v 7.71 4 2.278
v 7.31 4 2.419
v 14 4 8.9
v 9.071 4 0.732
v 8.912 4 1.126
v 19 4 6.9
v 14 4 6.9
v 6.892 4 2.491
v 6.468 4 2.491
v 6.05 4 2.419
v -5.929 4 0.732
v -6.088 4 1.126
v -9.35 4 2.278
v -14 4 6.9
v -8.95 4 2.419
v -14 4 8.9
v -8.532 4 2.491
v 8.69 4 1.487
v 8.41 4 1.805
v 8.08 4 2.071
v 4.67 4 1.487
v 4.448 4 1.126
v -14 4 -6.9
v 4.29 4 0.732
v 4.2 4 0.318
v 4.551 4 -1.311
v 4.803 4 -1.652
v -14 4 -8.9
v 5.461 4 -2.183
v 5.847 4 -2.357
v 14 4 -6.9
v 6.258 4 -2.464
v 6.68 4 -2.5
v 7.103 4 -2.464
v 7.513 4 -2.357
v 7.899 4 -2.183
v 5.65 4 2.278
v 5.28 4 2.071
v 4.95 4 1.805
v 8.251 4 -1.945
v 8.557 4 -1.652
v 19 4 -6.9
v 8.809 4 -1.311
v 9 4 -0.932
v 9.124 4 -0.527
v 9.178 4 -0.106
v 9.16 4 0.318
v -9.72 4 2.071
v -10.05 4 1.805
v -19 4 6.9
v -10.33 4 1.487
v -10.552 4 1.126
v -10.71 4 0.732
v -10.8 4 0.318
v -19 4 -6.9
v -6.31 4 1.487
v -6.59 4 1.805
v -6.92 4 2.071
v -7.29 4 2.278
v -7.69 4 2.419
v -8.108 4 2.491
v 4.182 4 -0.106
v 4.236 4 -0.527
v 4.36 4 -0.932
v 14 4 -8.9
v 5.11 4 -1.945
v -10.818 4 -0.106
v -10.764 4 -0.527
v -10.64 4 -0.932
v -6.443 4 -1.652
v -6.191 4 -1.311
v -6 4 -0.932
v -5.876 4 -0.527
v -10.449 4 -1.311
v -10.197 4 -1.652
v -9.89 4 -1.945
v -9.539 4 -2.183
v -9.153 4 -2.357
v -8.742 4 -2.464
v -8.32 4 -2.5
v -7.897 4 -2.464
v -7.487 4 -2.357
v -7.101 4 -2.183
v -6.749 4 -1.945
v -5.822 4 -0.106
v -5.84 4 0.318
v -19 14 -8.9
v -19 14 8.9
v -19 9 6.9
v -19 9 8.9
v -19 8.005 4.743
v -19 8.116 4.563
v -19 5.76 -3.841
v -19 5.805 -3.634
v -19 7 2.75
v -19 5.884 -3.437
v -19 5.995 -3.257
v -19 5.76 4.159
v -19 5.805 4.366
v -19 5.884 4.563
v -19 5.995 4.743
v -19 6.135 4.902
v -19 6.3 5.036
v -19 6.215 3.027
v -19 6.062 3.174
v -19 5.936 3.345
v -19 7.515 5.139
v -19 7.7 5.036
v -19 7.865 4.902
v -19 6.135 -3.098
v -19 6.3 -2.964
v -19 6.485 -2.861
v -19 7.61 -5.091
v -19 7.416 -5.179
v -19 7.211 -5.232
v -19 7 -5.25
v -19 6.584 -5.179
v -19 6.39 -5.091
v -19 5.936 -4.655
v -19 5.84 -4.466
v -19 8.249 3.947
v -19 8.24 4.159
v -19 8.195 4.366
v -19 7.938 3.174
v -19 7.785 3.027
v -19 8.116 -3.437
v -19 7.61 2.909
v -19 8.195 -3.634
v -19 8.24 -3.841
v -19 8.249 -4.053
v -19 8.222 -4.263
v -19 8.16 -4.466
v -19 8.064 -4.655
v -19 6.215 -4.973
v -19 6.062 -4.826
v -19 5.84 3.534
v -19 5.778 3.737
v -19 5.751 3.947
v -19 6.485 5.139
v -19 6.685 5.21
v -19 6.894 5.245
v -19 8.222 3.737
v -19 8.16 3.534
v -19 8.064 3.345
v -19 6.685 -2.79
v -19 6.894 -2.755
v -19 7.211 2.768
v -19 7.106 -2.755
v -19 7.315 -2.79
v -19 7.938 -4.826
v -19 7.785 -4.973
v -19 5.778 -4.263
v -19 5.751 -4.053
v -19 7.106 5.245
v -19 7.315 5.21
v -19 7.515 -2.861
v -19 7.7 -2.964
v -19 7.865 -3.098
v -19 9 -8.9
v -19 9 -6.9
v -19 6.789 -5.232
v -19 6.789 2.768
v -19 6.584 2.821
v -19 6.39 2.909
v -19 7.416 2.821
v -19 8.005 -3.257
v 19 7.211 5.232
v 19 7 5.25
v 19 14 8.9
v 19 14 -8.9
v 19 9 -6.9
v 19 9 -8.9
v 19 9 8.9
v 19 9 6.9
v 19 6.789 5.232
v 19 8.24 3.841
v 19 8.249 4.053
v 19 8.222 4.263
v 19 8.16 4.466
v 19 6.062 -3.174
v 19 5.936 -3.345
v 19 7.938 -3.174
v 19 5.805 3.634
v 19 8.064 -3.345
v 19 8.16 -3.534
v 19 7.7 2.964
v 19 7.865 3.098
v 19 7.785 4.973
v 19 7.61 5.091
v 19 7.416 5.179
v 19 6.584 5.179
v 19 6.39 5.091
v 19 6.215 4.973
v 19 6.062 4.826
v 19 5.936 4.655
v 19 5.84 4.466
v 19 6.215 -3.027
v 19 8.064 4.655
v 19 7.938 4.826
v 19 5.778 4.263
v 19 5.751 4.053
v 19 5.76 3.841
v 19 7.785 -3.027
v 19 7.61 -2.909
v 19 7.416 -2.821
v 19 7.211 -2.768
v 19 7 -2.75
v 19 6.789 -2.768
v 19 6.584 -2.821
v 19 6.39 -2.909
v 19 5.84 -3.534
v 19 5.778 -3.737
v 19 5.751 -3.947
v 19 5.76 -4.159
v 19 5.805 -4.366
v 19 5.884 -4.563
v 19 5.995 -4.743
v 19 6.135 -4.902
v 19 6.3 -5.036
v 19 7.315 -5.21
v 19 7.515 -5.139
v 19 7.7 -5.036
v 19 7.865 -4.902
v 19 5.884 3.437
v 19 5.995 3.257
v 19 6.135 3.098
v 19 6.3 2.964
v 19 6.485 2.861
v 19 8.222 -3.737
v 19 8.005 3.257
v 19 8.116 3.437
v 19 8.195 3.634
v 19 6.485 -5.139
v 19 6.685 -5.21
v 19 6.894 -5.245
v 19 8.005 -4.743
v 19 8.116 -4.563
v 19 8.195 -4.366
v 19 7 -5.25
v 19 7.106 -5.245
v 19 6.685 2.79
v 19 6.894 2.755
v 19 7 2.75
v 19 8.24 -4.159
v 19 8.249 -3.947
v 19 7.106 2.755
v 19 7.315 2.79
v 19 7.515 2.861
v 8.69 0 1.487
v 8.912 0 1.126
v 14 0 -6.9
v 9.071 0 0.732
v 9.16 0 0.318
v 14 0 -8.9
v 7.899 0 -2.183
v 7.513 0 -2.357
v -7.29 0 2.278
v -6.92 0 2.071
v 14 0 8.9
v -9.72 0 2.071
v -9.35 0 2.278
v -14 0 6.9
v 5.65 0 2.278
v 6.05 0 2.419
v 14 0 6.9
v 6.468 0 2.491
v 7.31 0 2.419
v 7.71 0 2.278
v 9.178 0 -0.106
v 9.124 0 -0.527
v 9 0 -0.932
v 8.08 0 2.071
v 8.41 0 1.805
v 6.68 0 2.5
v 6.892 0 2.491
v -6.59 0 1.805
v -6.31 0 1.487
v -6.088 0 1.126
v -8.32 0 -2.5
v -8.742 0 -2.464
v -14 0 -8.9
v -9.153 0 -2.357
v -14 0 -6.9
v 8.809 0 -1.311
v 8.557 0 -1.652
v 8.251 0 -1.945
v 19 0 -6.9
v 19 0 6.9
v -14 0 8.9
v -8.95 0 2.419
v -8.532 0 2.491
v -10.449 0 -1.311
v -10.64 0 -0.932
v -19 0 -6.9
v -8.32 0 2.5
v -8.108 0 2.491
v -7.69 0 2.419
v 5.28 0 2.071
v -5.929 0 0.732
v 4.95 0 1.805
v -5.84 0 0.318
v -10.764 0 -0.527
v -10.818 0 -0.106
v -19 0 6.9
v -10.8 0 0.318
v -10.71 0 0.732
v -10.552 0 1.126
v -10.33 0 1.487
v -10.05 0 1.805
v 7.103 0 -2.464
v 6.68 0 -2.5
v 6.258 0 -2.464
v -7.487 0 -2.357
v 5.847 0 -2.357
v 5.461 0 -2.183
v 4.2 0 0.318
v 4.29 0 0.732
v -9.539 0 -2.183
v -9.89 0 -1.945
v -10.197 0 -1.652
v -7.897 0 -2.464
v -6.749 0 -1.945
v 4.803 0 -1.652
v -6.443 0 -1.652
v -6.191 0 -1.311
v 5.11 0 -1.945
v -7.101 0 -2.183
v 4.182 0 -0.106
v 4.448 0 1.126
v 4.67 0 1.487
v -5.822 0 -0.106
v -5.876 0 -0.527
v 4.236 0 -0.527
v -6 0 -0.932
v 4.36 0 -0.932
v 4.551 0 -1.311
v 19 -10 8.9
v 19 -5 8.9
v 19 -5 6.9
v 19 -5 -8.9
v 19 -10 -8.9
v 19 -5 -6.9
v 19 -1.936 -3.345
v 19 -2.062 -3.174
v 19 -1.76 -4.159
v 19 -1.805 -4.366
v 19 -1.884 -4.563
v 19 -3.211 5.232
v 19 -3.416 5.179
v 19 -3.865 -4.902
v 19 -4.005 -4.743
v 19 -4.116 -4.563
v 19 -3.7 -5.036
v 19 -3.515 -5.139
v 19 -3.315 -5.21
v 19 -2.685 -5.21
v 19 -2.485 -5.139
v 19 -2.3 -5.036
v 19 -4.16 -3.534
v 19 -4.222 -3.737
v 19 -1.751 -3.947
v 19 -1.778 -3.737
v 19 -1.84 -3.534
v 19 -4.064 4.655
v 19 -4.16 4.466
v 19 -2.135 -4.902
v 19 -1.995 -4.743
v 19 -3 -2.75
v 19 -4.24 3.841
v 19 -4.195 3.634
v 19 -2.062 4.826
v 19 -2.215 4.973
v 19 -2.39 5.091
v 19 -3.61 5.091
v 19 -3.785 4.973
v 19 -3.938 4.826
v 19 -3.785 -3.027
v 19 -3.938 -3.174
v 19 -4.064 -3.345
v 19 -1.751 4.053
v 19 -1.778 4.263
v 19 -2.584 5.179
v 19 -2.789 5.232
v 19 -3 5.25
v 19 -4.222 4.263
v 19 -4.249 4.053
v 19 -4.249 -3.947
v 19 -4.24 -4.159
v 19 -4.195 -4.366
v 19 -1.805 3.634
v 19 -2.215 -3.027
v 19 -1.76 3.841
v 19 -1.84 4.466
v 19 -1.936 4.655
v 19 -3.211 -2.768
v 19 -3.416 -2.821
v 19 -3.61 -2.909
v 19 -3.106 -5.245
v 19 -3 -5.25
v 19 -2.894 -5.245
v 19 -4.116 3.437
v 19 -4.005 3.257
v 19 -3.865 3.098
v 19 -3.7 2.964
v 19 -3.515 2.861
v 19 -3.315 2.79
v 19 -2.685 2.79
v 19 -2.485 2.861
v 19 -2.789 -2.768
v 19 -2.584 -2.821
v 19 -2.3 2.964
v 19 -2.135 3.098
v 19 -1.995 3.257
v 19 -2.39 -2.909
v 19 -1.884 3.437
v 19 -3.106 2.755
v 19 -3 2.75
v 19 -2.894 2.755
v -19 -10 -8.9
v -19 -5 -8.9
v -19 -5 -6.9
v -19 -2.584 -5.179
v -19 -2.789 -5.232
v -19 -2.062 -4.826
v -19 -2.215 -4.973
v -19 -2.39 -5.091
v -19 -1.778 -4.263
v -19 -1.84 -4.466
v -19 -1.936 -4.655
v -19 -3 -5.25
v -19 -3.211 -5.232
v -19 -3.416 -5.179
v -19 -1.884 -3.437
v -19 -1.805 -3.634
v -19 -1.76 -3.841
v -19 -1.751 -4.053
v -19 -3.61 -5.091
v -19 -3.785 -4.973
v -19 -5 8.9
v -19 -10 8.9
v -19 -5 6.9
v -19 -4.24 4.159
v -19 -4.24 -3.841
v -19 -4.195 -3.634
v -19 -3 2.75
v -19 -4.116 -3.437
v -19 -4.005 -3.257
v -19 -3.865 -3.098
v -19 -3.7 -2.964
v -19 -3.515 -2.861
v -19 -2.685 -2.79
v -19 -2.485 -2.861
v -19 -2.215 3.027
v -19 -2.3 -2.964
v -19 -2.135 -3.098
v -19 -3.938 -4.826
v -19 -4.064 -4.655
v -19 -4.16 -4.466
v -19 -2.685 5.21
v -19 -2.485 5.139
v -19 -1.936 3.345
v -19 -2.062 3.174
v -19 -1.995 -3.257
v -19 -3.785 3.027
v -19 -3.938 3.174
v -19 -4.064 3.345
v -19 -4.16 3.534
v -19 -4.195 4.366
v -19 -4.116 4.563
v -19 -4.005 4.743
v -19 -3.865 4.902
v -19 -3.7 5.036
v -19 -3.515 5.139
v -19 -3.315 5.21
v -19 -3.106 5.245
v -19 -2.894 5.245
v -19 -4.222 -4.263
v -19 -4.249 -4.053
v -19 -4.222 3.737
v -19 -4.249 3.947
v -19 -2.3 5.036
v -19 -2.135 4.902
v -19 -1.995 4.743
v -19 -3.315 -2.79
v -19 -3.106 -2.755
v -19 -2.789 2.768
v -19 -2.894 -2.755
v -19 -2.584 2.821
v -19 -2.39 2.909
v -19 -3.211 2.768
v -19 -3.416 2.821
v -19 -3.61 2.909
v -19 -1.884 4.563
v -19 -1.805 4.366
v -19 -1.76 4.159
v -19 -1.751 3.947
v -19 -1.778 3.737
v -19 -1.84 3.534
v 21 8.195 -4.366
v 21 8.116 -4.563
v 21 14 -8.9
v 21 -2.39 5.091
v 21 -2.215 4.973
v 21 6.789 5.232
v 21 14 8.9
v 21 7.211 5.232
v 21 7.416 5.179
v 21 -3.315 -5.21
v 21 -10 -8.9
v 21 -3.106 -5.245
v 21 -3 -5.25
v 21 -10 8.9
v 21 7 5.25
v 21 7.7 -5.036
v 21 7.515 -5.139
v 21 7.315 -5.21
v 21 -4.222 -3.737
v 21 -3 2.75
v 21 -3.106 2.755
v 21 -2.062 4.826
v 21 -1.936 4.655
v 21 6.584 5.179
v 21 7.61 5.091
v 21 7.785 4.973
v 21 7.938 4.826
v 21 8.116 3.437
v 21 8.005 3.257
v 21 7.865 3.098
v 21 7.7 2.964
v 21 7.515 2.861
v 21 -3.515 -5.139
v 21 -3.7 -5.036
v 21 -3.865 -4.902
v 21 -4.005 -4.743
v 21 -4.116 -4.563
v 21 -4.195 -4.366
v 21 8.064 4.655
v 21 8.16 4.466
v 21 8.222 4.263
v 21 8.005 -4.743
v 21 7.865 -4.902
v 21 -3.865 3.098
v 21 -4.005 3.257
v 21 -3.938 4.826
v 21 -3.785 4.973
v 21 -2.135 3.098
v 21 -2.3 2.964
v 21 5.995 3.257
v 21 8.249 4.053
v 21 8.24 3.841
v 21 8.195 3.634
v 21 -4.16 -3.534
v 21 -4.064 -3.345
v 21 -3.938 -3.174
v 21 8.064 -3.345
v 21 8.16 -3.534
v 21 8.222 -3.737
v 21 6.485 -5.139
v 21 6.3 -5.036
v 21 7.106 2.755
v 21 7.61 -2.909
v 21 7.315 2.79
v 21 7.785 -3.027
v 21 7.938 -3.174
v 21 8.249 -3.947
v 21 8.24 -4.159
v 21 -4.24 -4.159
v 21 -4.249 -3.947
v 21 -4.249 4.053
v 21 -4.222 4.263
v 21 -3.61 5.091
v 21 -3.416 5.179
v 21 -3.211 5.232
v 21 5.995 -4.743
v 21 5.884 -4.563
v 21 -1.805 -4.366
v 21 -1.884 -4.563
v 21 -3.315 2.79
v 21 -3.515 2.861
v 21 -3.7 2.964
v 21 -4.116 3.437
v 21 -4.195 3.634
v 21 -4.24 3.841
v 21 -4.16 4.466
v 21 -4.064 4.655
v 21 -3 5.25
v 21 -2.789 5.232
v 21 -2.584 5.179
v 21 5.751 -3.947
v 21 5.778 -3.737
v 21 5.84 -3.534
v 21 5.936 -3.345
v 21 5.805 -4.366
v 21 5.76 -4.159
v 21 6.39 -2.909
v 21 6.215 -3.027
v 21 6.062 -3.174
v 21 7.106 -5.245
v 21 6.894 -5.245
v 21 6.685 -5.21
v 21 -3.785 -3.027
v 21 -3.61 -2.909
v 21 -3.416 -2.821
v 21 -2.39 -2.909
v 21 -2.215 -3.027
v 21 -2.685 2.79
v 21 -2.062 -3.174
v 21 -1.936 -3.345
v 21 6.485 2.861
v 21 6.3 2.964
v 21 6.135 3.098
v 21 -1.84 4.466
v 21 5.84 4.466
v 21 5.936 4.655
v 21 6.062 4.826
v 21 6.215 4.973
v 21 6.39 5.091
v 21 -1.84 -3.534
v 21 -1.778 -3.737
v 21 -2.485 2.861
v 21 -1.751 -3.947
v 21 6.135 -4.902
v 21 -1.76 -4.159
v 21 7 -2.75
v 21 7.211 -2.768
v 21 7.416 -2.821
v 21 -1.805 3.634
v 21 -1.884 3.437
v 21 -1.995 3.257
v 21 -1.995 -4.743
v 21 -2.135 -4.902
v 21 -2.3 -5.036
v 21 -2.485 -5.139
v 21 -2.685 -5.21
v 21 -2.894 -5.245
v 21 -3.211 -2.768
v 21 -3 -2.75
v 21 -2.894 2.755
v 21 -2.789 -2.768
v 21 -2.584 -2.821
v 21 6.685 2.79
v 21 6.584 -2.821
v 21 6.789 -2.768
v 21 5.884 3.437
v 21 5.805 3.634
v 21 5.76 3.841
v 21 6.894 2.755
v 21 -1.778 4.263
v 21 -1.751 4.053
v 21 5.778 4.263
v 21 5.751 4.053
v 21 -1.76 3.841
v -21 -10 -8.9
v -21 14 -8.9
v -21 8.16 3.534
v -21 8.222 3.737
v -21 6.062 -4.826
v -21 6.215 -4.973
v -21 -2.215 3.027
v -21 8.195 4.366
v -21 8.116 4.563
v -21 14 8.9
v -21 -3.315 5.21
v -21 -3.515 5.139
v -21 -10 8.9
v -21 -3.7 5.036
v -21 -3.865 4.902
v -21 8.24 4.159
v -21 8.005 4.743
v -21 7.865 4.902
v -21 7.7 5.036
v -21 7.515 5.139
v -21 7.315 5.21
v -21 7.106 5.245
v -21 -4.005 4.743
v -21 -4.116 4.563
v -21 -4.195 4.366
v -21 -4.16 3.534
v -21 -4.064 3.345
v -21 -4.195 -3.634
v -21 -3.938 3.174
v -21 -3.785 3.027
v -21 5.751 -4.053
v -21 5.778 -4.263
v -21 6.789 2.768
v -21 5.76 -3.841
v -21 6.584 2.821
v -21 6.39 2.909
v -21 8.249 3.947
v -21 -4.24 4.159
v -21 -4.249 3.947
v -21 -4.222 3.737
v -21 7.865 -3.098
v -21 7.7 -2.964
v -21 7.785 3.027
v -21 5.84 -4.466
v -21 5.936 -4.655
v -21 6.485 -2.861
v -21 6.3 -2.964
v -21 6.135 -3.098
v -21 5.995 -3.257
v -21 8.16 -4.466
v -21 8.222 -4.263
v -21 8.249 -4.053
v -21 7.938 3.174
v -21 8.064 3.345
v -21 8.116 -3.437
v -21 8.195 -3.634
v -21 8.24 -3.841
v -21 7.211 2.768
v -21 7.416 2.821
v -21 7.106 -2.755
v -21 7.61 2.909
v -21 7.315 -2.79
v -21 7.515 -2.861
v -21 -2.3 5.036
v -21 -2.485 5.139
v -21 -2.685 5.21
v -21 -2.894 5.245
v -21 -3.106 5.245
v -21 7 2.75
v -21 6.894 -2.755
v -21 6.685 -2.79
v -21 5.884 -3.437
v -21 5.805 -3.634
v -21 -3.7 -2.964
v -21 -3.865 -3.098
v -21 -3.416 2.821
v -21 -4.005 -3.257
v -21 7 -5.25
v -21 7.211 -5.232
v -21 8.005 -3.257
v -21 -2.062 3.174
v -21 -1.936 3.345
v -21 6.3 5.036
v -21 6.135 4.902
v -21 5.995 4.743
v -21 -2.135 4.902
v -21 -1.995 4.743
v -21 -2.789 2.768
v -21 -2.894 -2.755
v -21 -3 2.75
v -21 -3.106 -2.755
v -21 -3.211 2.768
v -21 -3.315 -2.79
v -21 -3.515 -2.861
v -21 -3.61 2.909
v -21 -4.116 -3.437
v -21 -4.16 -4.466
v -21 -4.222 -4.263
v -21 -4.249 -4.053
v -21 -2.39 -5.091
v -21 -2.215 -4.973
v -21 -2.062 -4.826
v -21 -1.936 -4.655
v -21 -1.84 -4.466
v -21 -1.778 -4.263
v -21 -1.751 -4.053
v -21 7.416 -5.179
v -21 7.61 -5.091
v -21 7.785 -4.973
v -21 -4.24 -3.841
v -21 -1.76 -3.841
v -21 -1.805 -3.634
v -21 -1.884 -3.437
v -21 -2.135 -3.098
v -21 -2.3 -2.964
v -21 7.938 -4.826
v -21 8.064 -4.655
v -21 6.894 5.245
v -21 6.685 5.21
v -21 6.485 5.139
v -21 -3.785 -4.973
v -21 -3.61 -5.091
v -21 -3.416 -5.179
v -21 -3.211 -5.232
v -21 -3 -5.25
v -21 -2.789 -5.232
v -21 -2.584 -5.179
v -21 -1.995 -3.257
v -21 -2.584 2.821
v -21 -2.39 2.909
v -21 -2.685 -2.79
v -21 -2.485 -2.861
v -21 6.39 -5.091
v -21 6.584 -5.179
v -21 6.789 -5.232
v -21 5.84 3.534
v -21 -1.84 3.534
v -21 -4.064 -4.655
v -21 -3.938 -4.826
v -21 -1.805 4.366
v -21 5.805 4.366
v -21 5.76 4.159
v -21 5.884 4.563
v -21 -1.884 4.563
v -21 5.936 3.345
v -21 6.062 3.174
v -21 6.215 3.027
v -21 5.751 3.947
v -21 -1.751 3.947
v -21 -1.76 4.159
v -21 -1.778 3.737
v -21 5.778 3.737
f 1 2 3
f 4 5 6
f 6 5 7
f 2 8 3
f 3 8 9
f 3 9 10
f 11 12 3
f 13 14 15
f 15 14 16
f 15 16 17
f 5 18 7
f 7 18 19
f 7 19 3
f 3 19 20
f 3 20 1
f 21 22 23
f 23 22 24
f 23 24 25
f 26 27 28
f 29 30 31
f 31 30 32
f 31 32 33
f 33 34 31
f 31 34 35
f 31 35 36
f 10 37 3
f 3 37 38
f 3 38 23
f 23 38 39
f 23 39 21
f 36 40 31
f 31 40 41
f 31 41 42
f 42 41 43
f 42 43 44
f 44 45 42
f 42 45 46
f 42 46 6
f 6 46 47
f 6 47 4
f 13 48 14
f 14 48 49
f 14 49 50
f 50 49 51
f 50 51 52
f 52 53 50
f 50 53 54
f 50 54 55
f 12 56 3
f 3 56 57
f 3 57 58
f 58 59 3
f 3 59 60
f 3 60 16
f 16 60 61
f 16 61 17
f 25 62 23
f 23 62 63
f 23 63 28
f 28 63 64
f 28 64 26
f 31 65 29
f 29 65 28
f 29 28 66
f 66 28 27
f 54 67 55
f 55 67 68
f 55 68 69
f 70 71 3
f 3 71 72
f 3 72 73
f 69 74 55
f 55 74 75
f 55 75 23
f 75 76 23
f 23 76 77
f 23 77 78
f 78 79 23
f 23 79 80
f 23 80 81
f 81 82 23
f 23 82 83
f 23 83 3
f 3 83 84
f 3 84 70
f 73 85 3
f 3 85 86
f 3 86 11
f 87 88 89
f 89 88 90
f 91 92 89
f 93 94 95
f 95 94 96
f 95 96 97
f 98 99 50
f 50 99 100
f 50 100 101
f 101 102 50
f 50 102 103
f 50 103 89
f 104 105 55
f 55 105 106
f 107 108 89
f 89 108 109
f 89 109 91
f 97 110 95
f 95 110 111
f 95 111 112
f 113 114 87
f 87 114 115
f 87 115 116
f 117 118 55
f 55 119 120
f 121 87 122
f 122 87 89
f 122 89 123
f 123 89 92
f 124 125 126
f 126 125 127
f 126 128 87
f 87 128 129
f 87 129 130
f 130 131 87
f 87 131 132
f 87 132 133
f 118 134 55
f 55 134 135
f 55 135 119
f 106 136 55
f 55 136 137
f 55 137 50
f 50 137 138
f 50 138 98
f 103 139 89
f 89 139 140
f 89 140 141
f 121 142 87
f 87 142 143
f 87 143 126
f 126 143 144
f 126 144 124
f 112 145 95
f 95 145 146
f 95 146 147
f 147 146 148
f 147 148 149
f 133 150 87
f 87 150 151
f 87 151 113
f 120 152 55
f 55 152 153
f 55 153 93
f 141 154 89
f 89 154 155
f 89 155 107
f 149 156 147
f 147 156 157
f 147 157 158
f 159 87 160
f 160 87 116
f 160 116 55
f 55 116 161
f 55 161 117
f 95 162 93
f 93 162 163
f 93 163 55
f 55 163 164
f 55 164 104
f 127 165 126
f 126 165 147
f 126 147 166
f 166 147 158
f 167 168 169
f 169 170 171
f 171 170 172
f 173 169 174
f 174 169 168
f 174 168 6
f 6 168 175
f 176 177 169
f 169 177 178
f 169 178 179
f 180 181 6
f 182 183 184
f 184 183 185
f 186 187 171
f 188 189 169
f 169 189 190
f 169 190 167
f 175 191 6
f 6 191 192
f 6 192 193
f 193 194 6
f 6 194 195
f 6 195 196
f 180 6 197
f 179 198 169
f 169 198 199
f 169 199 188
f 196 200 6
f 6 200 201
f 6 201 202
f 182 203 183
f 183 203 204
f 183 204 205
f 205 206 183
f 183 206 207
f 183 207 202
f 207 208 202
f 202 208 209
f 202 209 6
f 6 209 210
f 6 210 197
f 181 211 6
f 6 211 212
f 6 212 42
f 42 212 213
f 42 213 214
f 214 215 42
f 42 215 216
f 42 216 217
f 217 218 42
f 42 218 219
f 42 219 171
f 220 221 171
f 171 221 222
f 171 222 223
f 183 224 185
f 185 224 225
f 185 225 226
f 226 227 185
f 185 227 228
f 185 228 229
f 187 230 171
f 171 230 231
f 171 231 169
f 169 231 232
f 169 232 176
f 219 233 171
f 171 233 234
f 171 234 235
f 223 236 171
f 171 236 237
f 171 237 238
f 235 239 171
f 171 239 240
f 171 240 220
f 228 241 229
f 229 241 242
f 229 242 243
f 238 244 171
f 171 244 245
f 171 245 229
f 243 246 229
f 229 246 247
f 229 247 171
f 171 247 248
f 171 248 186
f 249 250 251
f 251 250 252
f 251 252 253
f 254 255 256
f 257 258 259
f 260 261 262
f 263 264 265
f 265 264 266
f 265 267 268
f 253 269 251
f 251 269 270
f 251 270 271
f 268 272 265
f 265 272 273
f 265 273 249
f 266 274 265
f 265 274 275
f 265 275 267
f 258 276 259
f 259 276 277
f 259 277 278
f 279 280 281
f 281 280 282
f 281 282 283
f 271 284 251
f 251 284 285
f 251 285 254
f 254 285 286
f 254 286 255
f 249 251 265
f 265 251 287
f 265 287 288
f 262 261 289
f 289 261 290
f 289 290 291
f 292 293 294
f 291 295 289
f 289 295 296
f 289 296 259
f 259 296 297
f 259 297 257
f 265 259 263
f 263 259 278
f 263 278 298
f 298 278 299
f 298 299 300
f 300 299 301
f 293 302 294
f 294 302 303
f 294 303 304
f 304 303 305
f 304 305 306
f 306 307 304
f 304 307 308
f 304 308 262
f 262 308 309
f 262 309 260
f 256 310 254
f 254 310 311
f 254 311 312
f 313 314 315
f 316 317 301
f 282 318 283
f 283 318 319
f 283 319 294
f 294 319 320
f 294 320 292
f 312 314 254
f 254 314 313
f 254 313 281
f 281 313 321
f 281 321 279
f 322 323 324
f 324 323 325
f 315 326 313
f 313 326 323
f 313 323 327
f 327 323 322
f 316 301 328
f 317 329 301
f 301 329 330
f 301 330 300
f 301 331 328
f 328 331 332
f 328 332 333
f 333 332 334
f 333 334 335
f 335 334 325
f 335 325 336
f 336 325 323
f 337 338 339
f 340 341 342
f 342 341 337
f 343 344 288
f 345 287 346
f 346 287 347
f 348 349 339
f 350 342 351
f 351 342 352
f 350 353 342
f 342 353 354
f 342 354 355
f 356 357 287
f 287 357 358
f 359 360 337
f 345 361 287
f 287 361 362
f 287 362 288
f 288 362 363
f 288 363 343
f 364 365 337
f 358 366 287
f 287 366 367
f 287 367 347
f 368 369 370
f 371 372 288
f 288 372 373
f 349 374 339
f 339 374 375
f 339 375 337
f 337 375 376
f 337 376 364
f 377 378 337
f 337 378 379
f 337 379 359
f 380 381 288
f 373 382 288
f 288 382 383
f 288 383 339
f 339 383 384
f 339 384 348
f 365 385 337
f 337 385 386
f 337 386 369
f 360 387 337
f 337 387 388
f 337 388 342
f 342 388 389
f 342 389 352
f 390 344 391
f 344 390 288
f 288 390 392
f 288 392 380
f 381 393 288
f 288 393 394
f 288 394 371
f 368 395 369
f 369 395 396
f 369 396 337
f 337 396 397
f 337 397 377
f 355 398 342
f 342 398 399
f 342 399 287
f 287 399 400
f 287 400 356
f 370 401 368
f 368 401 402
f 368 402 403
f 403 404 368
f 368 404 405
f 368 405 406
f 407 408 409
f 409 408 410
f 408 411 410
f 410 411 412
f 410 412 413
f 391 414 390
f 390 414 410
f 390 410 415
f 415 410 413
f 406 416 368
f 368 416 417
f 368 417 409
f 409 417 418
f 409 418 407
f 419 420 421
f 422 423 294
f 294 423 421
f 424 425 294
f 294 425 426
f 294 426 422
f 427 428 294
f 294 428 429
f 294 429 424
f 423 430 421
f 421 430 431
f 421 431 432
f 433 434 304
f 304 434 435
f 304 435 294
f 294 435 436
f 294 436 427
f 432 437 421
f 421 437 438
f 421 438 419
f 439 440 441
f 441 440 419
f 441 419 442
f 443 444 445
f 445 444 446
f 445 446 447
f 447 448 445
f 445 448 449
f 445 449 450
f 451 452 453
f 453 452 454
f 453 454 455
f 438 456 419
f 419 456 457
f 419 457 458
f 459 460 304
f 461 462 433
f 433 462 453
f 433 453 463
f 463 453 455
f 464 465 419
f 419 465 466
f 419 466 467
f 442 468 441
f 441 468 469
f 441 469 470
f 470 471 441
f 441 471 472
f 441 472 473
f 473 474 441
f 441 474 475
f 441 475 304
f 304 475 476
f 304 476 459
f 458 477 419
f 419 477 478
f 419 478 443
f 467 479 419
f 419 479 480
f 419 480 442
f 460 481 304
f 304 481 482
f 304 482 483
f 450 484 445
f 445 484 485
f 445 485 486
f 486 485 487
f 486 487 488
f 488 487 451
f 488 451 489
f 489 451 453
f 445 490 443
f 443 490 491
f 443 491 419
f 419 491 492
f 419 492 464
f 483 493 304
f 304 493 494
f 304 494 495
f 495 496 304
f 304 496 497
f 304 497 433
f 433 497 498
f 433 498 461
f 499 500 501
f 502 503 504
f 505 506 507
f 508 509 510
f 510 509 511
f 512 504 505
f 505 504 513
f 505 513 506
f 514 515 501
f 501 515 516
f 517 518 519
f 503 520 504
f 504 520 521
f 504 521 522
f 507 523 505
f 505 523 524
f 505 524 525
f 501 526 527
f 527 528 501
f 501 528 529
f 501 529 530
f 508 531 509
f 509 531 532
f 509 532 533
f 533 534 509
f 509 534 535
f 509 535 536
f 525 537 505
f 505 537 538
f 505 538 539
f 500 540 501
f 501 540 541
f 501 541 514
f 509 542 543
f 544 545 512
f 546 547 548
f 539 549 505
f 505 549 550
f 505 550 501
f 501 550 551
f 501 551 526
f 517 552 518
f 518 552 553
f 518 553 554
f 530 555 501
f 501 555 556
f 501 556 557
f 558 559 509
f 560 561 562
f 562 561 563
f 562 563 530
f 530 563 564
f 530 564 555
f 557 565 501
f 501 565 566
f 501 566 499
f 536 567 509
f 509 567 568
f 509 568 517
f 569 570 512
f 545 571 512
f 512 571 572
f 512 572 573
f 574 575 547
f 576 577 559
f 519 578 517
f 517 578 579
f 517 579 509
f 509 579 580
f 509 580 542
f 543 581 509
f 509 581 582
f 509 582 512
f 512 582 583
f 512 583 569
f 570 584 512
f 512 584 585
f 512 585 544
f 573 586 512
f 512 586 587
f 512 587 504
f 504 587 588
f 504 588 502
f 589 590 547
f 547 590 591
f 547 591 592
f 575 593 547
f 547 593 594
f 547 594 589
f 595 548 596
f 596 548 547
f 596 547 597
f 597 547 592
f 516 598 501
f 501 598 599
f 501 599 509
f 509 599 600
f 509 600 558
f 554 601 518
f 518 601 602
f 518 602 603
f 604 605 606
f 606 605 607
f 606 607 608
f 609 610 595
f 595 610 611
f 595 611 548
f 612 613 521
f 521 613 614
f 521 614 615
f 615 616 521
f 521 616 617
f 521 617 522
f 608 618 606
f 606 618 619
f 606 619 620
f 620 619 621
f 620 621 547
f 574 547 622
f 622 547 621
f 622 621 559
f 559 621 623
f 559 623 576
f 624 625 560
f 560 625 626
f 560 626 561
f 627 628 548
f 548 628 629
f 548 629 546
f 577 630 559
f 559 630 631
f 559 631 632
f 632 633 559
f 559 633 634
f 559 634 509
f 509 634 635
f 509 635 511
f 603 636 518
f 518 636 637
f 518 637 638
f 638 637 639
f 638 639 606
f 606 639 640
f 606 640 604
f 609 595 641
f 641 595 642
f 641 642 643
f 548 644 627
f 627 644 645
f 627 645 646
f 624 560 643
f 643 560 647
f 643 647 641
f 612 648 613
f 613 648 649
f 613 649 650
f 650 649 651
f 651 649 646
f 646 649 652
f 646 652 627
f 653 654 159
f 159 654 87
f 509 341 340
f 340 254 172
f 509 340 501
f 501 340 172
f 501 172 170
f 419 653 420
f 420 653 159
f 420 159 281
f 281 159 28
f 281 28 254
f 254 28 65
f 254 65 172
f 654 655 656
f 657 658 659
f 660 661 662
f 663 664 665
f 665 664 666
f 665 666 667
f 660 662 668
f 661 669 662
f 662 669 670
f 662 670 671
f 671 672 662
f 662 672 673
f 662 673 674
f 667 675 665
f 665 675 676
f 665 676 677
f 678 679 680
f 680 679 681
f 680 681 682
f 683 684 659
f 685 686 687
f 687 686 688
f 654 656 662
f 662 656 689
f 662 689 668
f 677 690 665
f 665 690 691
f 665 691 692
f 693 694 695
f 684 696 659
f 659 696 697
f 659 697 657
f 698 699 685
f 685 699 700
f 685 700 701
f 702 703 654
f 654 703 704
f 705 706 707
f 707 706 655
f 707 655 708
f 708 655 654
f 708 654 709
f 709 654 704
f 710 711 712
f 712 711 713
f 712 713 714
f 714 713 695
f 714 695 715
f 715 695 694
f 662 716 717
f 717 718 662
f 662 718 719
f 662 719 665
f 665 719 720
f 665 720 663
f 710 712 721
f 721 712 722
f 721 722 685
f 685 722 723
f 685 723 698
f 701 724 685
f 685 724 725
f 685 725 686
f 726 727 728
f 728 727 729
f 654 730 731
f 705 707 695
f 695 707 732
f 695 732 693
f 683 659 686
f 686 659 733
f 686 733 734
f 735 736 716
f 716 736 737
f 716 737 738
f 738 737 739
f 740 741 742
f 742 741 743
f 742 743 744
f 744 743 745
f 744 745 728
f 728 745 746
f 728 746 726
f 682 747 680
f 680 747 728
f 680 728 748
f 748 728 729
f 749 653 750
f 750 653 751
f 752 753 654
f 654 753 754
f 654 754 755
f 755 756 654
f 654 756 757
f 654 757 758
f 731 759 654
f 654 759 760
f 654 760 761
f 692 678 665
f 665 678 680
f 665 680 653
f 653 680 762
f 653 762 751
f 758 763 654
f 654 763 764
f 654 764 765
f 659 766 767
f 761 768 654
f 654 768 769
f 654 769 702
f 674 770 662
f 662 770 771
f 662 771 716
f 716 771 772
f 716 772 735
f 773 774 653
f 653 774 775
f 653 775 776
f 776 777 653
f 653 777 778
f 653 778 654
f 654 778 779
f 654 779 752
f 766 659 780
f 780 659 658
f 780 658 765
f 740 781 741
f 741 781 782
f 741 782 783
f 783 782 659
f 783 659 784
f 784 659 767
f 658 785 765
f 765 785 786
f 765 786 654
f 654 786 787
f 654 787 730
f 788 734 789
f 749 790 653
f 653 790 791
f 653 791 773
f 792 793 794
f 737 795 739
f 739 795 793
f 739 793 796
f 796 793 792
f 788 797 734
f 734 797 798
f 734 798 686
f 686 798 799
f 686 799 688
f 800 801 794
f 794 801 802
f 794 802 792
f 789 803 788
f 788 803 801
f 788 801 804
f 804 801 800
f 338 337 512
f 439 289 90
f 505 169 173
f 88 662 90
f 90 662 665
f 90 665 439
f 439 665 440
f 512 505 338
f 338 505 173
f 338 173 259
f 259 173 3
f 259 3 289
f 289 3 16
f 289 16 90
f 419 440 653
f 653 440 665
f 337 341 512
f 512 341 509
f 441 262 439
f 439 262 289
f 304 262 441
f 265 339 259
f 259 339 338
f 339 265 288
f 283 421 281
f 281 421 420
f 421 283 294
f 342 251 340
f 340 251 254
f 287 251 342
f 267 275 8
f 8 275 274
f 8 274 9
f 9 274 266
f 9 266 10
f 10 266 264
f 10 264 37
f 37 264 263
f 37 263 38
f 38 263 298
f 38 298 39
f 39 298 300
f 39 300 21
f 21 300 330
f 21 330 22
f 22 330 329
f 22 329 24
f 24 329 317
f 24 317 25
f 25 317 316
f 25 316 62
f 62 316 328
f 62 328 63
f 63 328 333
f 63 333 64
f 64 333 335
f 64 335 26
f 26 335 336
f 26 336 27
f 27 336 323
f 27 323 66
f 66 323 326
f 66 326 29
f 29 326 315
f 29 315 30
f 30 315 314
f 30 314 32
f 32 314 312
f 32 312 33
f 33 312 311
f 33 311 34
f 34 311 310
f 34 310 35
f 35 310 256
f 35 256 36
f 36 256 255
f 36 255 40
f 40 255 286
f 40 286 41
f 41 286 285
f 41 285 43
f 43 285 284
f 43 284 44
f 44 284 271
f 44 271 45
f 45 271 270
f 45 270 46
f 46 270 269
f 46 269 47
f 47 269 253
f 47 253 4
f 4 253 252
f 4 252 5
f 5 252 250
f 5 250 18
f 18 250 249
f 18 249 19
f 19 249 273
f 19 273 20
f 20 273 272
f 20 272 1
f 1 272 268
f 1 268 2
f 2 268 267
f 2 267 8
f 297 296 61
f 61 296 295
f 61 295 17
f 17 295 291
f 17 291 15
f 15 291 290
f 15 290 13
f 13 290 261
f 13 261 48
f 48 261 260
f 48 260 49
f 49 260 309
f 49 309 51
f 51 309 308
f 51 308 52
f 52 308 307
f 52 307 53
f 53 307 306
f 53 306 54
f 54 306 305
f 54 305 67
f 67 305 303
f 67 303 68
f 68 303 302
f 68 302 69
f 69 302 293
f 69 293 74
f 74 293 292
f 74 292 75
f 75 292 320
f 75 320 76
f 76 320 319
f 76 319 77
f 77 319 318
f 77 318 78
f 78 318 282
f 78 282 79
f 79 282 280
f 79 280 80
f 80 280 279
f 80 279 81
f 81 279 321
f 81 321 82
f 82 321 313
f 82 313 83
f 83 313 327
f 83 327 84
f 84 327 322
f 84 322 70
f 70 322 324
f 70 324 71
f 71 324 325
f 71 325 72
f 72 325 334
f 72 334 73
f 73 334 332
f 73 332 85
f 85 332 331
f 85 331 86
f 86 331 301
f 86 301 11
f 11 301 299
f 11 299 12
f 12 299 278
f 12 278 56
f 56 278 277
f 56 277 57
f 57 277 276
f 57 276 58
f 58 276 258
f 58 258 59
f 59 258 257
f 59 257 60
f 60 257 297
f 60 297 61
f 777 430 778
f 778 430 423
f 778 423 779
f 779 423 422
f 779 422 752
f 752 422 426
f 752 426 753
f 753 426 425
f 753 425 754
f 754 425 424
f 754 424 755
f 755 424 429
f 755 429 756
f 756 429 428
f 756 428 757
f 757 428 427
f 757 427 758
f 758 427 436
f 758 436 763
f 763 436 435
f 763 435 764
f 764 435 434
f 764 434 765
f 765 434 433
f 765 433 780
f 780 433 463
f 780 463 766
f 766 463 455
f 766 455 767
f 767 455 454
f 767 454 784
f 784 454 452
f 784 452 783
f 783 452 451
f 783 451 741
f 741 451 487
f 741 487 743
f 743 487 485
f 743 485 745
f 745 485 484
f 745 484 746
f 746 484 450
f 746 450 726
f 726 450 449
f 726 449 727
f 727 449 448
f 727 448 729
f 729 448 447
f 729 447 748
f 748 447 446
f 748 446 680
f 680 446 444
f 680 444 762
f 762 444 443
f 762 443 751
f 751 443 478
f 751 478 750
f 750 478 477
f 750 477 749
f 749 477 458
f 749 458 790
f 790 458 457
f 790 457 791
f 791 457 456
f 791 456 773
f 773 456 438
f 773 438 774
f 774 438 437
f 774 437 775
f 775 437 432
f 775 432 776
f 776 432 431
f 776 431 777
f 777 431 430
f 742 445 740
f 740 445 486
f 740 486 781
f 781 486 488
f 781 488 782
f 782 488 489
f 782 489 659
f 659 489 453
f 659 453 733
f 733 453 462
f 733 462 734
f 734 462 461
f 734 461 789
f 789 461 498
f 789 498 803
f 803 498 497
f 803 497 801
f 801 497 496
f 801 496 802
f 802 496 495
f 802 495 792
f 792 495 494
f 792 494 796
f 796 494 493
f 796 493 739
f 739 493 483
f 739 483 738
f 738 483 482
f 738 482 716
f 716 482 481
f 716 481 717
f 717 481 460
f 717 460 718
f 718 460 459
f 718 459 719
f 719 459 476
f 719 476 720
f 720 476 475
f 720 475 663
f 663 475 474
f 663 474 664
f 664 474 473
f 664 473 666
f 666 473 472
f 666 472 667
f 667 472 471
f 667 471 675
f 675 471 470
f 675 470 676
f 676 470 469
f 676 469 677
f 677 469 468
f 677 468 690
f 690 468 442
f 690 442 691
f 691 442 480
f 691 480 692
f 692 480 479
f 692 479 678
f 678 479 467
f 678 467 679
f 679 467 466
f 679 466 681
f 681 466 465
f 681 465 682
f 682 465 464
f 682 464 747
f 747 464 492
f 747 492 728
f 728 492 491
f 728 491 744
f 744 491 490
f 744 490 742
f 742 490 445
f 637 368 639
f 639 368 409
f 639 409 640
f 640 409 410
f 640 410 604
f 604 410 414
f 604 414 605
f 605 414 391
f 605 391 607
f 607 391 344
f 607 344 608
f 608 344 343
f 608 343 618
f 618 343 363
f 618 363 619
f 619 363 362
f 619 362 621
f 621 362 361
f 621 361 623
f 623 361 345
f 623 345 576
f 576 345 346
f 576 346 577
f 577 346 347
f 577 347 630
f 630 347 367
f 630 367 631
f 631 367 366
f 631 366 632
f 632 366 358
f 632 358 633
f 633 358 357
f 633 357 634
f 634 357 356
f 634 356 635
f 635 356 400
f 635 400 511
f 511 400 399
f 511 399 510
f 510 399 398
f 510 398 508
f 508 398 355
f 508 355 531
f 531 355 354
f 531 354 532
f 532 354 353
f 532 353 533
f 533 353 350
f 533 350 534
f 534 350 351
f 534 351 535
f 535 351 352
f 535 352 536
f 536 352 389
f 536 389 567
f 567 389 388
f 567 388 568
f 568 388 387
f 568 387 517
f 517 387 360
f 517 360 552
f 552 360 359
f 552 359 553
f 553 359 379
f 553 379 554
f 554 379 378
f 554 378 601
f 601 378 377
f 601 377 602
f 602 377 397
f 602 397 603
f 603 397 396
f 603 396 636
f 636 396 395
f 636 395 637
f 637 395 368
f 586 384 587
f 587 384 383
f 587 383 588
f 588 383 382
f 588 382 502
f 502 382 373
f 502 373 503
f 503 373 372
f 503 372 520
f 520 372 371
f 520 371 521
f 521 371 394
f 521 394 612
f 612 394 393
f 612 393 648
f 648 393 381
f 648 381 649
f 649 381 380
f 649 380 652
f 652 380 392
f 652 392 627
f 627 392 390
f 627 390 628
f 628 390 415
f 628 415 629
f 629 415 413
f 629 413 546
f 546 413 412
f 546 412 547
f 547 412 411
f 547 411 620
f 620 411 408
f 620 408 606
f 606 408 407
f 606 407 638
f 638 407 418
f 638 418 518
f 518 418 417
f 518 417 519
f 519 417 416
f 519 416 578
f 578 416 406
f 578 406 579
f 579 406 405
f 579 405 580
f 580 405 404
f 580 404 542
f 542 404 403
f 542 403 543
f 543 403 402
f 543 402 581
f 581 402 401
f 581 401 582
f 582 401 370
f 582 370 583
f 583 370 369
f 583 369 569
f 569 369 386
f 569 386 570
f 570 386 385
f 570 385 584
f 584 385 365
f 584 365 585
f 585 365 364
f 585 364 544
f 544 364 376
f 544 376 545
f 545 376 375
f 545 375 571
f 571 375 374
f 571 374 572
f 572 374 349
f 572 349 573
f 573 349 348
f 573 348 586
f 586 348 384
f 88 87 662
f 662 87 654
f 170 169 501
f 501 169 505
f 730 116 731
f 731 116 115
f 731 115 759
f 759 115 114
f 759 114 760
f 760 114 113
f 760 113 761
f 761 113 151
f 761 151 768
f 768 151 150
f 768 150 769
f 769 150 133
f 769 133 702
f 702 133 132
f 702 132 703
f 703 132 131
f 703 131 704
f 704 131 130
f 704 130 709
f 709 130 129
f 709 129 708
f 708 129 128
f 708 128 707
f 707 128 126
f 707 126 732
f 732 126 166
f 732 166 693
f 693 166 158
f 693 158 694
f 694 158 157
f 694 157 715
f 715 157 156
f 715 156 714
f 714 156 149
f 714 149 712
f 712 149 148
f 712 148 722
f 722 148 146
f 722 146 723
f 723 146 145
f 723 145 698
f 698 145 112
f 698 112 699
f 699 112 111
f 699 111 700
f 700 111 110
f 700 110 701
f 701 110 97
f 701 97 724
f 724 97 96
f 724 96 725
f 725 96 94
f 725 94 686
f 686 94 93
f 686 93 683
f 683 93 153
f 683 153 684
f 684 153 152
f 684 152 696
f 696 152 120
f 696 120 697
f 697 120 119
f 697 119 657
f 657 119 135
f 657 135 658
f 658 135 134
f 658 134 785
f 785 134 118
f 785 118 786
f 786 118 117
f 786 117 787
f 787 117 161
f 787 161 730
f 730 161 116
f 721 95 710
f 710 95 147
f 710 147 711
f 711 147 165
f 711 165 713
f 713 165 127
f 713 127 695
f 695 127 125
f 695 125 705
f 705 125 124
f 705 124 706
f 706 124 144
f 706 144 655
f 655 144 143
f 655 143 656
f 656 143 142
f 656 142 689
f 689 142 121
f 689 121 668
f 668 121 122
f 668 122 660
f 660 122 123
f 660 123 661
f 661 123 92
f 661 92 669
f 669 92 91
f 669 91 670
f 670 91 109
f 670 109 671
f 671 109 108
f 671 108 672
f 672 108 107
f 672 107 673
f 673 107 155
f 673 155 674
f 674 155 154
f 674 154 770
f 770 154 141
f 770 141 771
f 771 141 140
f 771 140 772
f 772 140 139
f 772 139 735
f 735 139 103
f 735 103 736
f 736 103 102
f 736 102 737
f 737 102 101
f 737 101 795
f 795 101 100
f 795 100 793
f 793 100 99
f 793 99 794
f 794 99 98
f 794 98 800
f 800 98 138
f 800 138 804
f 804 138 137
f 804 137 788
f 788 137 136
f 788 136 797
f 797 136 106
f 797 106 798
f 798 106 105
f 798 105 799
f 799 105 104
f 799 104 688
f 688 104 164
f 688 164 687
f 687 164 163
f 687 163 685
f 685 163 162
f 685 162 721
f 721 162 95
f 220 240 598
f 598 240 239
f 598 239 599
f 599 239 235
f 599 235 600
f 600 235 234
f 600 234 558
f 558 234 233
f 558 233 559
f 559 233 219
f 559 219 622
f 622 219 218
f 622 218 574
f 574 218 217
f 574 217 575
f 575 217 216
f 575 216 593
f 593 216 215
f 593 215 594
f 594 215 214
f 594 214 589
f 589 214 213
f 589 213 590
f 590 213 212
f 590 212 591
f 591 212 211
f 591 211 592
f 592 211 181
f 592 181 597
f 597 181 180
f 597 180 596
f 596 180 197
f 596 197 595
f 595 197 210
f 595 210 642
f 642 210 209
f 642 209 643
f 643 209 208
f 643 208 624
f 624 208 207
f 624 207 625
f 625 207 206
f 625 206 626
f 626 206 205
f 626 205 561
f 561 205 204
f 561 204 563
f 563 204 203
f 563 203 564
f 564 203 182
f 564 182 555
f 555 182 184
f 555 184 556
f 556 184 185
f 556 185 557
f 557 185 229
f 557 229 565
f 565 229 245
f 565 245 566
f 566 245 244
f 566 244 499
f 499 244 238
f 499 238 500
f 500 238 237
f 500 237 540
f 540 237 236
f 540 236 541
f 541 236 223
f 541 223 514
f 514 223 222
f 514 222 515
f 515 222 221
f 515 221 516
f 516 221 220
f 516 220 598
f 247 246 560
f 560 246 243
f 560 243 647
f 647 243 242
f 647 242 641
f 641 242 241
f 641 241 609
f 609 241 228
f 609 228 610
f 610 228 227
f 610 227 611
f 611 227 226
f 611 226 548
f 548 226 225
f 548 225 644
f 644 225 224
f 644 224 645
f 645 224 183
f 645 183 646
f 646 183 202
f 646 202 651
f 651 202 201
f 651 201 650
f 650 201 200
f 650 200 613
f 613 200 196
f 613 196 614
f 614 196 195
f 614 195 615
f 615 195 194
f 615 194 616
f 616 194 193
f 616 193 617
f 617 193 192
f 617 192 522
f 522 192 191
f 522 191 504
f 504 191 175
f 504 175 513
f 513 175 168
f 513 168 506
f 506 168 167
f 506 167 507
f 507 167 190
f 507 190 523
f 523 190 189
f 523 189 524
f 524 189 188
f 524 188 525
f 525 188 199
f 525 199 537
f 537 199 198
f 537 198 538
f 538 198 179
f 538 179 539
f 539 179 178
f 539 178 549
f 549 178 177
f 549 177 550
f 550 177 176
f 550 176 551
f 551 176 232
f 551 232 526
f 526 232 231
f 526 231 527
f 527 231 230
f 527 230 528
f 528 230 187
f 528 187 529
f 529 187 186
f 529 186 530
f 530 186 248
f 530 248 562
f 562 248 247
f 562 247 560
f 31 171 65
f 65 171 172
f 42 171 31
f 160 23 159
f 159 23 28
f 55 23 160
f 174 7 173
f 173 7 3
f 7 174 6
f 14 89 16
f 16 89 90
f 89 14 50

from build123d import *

# Parameters (mm, degrees)
SKETCH2_W               = 42
SKETCH2_H               = 17.8
BOSS_EXTRUDE1_DEPTH     = 4
SKETCH3_W               = 2
SKETCH3_H               = 17.8
BOSS_EXTRUDE2_DEPTH     = 10
BOSS_EXTRUDE3_DEPTH     = 2
SKETCH5_R               = 2.5
CUT_EXTRUDE1_DEPTH      = 11
CUT_EXTRUDE1_DEPTH_BACK = 5
SKETCH6_R               = 1.25
CUT_EXTRUDE2_DEPTH      = 2
SKETCH7_W               = 2
SKETCH7_H               = 17.8
BOSS_EXTRUDE4_DEPTH     = 10
SKETCH8_R               = 1.25
CUT_EXTRUDE3_DEPTH      = 10
BOSS_EXTRUDE5_DEPTH     = 2


with BuildPart() as part:
    # Sketch2 → Boss-Extrude1 (new body)
    with BuildSketch(Plane(origin=(0, 0, 0), x_dir=(1, 0, 0), z_dir=(0, 1, 0))):
        Rectangle(SKETCH2_W, SKETCH2_H)
    extrude(amount=BOSS_EXTRUDE1_DEPTH)

    # Sketch3 → Boss-Extrude2 (add)
    with BuildSketch(Plane.XZ):
        with Locations((-20, 0)):
            Rectangle(SKETCH3_W, SKETCH3_H)
        with Locations((20, 0)):
            Rectangle(SKETCH3_W, SKETCH3_H)
    extrude(amount=BOSS_EXTRUDE2_DEPTH)

    # Sketch4 → Boss-Extrude3 (add)
    with BuildSketch(Plane.XY.offset(8.9)):
        Polygon((-19, 0), (-14, 0), (-19, -5), align=None)
        Polygon((19, -5), (14, 0), (19, 0), align=None)
    boss_extrude3 = extrude(amount=-BOSS_EXTRUDE3_DEPTH)

    # Mirror1: Boss-Extrude3 across plane
    add(boss_extrude3.mirror(Plane.XY))

    # Sketch5 → Cut-Extrude1 (cut, two sides)
    with BuildSketch(Plane.XZ) as cut_extrude1_sk:
        with Locations((-8.319906625, 0)):
            Circle(SKETCH5_R)
        with Locations((6.680093375, 0)):
            Circle(SKETCH5_R)
    extrude(amount=CUT_EXTRUDE1_DEPTH, mode=Mode.SUBTRACT)
    extrude(cut_extrude1_sk.sketch, amount=-CUT_EXTRUDE1_DEPTH_BACK, mode=Mode.SUBTRACT)

    # Sketch6 → Cut-Extrude2 (cut)
    with BuildSketch(Plane(origin=(-19, 0, 0), x_dir=(0, 0, -1), z_dir=(1, 0, 0))):
        with Locations((-4, -3)):
            Circle(SKETCH6_R)
        with Locations((4, -3)):
            Circle(SKETCH6_R)
    cut_extrude2 = extrude(amount=-CUT_EXTRUDE2_DEPTH, mode=Mode.SUBTRACT)

    # Mirror2: Cut-Extrude2 across plane
    add(cut_extrude2.mirror(Plane(origin=(0, 0, 0), x_dir=(0, 0, 1), z_dir=(1, 0, 0))), mode=Mode.SUBTRACT)

    # Sketch7 → Boss-Extrude4 (add)
    with BuildSketch(Plane(origin=(0, 4, 0), x_dir=(1, 0, 0), z_dir=(0, 1, 0))):
        with Locations((-20, 0)):
            Rectangle(SKETCH7_W, SKETCH7_H)
        with Locations((20, 0)):
            Rectangle(SKETCH7_W, SKETCH7_H)
    extrude(amount=BOSS_EXTRUDE4_DEPTH)

    # Sketch8 → Cut-Extrude3 (cut)
    with BuildSketch(Plane(origin=(-19, 0, 0), x_dir=(0, 0, -1), z_dir=(1, 0, 0))):
        with Locations((-4, 7)):
            Circle(SKETCH8_R)
        with Locations((4, 7)):
            Circle(SKETCH8_R)
    cut_extrude3 = extrude(amount=-CUT_EXTRUDE3_DEPTH, mode=Mode.SUBTRACT)

    # Mirror3: Cut-Extrude3 across plane
    add(cut_extrude3.mirror(Plane(origin=(0, 0, 0), x_dir=(0, 0, 1), z_dir=(1, 0, 0))), mode=Mode.SUBTRACT)

    # Sketch9 → Boss-Extrude5 (add)
    with BuildSketch(Plane(origin=(0, 0, -8.9), x_dir=(-1, 0, 0), z_dir=(0, 0, -1))):
        Polygon((-19, 9), (-19, 4), (-14, 4), align=None)
        Polygon((19, 9), (14, 4), (19, 4), align=None)
    boss_extrude5 = extrude(amount=-BOSS_EXTRUDE5_DEPTH)

    # Mirror4: Boss-Extrude5 across plane
    add(boss_extrude5.mirror(Plane.XY))


solid = part.part
